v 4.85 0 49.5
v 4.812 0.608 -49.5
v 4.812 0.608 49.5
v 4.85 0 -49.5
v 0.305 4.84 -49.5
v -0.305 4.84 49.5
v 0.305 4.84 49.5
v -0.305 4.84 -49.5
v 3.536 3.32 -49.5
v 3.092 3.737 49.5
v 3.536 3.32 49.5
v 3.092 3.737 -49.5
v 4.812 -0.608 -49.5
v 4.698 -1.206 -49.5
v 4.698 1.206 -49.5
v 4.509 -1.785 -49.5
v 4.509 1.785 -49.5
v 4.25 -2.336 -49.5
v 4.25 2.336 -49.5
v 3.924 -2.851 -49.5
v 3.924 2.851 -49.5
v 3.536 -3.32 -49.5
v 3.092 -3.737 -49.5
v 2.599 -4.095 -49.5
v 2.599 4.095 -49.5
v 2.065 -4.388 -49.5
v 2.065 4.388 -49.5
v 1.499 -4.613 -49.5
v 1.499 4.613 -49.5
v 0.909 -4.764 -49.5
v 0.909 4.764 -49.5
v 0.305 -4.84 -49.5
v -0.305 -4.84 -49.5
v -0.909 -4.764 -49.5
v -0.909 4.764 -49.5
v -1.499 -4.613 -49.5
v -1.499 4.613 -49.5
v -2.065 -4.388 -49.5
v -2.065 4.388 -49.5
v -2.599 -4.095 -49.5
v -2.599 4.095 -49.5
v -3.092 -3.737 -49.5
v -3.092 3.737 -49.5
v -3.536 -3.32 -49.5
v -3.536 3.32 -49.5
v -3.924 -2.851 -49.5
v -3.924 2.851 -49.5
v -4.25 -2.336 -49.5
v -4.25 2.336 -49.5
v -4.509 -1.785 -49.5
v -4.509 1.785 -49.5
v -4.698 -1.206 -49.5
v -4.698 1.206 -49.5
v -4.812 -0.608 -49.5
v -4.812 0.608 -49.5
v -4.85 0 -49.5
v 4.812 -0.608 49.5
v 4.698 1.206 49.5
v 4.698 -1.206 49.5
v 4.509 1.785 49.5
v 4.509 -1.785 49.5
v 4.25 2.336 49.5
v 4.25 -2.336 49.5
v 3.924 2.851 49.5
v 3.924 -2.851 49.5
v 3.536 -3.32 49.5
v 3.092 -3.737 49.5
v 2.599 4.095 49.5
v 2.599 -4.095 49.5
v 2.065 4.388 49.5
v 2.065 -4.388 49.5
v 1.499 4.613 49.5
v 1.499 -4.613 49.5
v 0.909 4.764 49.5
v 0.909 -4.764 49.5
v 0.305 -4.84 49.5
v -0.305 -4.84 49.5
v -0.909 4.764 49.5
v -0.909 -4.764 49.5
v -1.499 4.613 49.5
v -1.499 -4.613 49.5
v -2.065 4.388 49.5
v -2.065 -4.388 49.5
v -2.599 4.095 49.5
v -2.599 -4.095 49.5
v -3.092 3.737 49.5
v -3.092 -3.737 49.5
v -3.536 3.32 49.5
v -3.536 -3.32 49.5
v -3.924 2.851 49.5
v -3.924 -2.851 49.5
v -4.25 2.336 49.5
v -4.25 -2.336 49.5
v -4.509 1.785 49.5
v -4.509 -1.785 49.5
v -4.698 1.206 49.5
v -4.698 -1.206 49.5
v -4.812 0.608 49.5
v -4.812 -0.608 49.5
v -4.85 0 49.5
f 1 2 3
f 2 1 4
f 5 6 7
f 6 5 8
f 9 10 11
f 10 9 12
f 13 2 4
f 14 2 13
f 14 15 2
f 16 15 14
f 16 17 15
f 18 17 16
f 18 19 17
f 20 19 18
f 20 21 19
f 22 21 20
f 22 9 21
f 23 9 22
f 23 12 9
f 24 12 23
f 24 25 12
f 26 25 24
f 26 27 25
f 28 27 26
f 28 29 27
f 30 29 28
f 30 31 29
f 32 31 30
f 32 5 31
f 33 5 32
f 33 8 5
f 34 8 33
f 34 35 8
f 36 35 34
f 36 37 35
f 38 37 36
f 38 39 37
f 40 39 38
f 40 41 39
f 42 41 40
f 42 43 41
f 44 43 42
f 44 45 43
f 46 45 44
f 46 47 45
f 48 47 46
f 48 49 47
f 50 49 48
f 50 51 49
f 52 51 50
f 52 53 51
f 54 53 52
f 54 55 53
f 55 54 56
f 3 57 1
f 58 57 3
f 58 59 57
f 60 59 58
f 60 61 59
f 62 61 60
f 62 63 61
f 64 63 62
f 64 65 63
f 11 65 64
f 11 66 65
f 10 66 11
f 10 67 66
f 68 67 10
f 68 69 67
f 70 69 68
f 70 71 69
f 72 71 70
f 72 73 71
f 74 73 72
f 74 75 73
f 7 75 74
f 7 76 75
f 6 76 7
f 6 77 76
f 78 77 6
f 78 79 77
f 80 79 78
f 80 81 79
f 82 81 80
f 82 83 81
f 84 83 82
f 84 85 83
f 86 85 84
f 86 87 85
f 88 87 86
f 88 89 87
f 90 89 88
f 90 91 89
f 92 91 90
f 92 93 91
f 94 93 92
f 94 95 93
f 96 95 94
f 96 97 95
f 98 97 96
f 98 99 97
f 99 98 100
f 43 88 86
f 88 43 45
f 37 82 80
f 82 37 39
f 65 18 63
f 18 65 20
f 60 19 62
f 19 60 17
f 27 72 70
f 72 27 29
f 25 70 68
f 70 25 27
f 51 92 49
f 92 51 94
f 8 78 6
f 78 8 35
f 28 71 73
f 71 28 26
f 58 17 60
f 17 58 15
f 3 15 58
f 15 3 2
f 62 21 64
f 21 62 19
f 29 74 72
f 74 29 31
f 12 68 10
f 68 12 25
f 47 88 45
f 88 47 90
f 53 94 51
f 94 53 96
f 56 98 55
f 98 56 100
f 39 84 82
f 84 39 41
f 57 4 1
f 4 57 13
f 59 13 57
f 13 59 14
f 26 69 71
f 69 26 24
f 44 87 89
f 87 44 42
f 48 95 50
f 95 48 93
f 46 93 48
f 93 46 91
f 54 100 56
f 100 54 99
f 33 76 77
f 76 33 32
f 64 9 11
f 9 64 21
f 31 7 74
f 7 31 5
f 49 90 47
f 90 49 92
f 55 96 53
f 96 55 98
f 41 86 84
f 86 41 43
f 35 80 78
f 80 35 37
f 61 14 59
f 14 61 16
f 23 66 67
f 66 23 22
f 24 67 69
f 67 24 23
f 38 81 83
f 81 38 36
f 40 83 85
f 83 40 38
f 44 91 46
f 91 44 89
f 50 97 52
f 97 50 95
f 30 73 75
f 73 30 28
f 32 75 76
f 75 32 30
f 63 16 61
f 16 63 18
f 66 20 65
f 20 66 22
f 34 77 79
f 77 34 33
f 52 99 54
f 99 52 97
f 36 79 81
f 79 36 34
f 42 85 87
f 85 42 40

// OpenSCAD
$fn = 50;


difference() {
	union() {
		translate(v = [0, 0, -49.5000000000]) {
			cylinder(h = 99, r = 4.8500000000);
		}
	}
	union() {
		translate(v = [0, 0, -100.0000000000]) {
			cylinder(h = 200, r = 0);
		}
	}
}
